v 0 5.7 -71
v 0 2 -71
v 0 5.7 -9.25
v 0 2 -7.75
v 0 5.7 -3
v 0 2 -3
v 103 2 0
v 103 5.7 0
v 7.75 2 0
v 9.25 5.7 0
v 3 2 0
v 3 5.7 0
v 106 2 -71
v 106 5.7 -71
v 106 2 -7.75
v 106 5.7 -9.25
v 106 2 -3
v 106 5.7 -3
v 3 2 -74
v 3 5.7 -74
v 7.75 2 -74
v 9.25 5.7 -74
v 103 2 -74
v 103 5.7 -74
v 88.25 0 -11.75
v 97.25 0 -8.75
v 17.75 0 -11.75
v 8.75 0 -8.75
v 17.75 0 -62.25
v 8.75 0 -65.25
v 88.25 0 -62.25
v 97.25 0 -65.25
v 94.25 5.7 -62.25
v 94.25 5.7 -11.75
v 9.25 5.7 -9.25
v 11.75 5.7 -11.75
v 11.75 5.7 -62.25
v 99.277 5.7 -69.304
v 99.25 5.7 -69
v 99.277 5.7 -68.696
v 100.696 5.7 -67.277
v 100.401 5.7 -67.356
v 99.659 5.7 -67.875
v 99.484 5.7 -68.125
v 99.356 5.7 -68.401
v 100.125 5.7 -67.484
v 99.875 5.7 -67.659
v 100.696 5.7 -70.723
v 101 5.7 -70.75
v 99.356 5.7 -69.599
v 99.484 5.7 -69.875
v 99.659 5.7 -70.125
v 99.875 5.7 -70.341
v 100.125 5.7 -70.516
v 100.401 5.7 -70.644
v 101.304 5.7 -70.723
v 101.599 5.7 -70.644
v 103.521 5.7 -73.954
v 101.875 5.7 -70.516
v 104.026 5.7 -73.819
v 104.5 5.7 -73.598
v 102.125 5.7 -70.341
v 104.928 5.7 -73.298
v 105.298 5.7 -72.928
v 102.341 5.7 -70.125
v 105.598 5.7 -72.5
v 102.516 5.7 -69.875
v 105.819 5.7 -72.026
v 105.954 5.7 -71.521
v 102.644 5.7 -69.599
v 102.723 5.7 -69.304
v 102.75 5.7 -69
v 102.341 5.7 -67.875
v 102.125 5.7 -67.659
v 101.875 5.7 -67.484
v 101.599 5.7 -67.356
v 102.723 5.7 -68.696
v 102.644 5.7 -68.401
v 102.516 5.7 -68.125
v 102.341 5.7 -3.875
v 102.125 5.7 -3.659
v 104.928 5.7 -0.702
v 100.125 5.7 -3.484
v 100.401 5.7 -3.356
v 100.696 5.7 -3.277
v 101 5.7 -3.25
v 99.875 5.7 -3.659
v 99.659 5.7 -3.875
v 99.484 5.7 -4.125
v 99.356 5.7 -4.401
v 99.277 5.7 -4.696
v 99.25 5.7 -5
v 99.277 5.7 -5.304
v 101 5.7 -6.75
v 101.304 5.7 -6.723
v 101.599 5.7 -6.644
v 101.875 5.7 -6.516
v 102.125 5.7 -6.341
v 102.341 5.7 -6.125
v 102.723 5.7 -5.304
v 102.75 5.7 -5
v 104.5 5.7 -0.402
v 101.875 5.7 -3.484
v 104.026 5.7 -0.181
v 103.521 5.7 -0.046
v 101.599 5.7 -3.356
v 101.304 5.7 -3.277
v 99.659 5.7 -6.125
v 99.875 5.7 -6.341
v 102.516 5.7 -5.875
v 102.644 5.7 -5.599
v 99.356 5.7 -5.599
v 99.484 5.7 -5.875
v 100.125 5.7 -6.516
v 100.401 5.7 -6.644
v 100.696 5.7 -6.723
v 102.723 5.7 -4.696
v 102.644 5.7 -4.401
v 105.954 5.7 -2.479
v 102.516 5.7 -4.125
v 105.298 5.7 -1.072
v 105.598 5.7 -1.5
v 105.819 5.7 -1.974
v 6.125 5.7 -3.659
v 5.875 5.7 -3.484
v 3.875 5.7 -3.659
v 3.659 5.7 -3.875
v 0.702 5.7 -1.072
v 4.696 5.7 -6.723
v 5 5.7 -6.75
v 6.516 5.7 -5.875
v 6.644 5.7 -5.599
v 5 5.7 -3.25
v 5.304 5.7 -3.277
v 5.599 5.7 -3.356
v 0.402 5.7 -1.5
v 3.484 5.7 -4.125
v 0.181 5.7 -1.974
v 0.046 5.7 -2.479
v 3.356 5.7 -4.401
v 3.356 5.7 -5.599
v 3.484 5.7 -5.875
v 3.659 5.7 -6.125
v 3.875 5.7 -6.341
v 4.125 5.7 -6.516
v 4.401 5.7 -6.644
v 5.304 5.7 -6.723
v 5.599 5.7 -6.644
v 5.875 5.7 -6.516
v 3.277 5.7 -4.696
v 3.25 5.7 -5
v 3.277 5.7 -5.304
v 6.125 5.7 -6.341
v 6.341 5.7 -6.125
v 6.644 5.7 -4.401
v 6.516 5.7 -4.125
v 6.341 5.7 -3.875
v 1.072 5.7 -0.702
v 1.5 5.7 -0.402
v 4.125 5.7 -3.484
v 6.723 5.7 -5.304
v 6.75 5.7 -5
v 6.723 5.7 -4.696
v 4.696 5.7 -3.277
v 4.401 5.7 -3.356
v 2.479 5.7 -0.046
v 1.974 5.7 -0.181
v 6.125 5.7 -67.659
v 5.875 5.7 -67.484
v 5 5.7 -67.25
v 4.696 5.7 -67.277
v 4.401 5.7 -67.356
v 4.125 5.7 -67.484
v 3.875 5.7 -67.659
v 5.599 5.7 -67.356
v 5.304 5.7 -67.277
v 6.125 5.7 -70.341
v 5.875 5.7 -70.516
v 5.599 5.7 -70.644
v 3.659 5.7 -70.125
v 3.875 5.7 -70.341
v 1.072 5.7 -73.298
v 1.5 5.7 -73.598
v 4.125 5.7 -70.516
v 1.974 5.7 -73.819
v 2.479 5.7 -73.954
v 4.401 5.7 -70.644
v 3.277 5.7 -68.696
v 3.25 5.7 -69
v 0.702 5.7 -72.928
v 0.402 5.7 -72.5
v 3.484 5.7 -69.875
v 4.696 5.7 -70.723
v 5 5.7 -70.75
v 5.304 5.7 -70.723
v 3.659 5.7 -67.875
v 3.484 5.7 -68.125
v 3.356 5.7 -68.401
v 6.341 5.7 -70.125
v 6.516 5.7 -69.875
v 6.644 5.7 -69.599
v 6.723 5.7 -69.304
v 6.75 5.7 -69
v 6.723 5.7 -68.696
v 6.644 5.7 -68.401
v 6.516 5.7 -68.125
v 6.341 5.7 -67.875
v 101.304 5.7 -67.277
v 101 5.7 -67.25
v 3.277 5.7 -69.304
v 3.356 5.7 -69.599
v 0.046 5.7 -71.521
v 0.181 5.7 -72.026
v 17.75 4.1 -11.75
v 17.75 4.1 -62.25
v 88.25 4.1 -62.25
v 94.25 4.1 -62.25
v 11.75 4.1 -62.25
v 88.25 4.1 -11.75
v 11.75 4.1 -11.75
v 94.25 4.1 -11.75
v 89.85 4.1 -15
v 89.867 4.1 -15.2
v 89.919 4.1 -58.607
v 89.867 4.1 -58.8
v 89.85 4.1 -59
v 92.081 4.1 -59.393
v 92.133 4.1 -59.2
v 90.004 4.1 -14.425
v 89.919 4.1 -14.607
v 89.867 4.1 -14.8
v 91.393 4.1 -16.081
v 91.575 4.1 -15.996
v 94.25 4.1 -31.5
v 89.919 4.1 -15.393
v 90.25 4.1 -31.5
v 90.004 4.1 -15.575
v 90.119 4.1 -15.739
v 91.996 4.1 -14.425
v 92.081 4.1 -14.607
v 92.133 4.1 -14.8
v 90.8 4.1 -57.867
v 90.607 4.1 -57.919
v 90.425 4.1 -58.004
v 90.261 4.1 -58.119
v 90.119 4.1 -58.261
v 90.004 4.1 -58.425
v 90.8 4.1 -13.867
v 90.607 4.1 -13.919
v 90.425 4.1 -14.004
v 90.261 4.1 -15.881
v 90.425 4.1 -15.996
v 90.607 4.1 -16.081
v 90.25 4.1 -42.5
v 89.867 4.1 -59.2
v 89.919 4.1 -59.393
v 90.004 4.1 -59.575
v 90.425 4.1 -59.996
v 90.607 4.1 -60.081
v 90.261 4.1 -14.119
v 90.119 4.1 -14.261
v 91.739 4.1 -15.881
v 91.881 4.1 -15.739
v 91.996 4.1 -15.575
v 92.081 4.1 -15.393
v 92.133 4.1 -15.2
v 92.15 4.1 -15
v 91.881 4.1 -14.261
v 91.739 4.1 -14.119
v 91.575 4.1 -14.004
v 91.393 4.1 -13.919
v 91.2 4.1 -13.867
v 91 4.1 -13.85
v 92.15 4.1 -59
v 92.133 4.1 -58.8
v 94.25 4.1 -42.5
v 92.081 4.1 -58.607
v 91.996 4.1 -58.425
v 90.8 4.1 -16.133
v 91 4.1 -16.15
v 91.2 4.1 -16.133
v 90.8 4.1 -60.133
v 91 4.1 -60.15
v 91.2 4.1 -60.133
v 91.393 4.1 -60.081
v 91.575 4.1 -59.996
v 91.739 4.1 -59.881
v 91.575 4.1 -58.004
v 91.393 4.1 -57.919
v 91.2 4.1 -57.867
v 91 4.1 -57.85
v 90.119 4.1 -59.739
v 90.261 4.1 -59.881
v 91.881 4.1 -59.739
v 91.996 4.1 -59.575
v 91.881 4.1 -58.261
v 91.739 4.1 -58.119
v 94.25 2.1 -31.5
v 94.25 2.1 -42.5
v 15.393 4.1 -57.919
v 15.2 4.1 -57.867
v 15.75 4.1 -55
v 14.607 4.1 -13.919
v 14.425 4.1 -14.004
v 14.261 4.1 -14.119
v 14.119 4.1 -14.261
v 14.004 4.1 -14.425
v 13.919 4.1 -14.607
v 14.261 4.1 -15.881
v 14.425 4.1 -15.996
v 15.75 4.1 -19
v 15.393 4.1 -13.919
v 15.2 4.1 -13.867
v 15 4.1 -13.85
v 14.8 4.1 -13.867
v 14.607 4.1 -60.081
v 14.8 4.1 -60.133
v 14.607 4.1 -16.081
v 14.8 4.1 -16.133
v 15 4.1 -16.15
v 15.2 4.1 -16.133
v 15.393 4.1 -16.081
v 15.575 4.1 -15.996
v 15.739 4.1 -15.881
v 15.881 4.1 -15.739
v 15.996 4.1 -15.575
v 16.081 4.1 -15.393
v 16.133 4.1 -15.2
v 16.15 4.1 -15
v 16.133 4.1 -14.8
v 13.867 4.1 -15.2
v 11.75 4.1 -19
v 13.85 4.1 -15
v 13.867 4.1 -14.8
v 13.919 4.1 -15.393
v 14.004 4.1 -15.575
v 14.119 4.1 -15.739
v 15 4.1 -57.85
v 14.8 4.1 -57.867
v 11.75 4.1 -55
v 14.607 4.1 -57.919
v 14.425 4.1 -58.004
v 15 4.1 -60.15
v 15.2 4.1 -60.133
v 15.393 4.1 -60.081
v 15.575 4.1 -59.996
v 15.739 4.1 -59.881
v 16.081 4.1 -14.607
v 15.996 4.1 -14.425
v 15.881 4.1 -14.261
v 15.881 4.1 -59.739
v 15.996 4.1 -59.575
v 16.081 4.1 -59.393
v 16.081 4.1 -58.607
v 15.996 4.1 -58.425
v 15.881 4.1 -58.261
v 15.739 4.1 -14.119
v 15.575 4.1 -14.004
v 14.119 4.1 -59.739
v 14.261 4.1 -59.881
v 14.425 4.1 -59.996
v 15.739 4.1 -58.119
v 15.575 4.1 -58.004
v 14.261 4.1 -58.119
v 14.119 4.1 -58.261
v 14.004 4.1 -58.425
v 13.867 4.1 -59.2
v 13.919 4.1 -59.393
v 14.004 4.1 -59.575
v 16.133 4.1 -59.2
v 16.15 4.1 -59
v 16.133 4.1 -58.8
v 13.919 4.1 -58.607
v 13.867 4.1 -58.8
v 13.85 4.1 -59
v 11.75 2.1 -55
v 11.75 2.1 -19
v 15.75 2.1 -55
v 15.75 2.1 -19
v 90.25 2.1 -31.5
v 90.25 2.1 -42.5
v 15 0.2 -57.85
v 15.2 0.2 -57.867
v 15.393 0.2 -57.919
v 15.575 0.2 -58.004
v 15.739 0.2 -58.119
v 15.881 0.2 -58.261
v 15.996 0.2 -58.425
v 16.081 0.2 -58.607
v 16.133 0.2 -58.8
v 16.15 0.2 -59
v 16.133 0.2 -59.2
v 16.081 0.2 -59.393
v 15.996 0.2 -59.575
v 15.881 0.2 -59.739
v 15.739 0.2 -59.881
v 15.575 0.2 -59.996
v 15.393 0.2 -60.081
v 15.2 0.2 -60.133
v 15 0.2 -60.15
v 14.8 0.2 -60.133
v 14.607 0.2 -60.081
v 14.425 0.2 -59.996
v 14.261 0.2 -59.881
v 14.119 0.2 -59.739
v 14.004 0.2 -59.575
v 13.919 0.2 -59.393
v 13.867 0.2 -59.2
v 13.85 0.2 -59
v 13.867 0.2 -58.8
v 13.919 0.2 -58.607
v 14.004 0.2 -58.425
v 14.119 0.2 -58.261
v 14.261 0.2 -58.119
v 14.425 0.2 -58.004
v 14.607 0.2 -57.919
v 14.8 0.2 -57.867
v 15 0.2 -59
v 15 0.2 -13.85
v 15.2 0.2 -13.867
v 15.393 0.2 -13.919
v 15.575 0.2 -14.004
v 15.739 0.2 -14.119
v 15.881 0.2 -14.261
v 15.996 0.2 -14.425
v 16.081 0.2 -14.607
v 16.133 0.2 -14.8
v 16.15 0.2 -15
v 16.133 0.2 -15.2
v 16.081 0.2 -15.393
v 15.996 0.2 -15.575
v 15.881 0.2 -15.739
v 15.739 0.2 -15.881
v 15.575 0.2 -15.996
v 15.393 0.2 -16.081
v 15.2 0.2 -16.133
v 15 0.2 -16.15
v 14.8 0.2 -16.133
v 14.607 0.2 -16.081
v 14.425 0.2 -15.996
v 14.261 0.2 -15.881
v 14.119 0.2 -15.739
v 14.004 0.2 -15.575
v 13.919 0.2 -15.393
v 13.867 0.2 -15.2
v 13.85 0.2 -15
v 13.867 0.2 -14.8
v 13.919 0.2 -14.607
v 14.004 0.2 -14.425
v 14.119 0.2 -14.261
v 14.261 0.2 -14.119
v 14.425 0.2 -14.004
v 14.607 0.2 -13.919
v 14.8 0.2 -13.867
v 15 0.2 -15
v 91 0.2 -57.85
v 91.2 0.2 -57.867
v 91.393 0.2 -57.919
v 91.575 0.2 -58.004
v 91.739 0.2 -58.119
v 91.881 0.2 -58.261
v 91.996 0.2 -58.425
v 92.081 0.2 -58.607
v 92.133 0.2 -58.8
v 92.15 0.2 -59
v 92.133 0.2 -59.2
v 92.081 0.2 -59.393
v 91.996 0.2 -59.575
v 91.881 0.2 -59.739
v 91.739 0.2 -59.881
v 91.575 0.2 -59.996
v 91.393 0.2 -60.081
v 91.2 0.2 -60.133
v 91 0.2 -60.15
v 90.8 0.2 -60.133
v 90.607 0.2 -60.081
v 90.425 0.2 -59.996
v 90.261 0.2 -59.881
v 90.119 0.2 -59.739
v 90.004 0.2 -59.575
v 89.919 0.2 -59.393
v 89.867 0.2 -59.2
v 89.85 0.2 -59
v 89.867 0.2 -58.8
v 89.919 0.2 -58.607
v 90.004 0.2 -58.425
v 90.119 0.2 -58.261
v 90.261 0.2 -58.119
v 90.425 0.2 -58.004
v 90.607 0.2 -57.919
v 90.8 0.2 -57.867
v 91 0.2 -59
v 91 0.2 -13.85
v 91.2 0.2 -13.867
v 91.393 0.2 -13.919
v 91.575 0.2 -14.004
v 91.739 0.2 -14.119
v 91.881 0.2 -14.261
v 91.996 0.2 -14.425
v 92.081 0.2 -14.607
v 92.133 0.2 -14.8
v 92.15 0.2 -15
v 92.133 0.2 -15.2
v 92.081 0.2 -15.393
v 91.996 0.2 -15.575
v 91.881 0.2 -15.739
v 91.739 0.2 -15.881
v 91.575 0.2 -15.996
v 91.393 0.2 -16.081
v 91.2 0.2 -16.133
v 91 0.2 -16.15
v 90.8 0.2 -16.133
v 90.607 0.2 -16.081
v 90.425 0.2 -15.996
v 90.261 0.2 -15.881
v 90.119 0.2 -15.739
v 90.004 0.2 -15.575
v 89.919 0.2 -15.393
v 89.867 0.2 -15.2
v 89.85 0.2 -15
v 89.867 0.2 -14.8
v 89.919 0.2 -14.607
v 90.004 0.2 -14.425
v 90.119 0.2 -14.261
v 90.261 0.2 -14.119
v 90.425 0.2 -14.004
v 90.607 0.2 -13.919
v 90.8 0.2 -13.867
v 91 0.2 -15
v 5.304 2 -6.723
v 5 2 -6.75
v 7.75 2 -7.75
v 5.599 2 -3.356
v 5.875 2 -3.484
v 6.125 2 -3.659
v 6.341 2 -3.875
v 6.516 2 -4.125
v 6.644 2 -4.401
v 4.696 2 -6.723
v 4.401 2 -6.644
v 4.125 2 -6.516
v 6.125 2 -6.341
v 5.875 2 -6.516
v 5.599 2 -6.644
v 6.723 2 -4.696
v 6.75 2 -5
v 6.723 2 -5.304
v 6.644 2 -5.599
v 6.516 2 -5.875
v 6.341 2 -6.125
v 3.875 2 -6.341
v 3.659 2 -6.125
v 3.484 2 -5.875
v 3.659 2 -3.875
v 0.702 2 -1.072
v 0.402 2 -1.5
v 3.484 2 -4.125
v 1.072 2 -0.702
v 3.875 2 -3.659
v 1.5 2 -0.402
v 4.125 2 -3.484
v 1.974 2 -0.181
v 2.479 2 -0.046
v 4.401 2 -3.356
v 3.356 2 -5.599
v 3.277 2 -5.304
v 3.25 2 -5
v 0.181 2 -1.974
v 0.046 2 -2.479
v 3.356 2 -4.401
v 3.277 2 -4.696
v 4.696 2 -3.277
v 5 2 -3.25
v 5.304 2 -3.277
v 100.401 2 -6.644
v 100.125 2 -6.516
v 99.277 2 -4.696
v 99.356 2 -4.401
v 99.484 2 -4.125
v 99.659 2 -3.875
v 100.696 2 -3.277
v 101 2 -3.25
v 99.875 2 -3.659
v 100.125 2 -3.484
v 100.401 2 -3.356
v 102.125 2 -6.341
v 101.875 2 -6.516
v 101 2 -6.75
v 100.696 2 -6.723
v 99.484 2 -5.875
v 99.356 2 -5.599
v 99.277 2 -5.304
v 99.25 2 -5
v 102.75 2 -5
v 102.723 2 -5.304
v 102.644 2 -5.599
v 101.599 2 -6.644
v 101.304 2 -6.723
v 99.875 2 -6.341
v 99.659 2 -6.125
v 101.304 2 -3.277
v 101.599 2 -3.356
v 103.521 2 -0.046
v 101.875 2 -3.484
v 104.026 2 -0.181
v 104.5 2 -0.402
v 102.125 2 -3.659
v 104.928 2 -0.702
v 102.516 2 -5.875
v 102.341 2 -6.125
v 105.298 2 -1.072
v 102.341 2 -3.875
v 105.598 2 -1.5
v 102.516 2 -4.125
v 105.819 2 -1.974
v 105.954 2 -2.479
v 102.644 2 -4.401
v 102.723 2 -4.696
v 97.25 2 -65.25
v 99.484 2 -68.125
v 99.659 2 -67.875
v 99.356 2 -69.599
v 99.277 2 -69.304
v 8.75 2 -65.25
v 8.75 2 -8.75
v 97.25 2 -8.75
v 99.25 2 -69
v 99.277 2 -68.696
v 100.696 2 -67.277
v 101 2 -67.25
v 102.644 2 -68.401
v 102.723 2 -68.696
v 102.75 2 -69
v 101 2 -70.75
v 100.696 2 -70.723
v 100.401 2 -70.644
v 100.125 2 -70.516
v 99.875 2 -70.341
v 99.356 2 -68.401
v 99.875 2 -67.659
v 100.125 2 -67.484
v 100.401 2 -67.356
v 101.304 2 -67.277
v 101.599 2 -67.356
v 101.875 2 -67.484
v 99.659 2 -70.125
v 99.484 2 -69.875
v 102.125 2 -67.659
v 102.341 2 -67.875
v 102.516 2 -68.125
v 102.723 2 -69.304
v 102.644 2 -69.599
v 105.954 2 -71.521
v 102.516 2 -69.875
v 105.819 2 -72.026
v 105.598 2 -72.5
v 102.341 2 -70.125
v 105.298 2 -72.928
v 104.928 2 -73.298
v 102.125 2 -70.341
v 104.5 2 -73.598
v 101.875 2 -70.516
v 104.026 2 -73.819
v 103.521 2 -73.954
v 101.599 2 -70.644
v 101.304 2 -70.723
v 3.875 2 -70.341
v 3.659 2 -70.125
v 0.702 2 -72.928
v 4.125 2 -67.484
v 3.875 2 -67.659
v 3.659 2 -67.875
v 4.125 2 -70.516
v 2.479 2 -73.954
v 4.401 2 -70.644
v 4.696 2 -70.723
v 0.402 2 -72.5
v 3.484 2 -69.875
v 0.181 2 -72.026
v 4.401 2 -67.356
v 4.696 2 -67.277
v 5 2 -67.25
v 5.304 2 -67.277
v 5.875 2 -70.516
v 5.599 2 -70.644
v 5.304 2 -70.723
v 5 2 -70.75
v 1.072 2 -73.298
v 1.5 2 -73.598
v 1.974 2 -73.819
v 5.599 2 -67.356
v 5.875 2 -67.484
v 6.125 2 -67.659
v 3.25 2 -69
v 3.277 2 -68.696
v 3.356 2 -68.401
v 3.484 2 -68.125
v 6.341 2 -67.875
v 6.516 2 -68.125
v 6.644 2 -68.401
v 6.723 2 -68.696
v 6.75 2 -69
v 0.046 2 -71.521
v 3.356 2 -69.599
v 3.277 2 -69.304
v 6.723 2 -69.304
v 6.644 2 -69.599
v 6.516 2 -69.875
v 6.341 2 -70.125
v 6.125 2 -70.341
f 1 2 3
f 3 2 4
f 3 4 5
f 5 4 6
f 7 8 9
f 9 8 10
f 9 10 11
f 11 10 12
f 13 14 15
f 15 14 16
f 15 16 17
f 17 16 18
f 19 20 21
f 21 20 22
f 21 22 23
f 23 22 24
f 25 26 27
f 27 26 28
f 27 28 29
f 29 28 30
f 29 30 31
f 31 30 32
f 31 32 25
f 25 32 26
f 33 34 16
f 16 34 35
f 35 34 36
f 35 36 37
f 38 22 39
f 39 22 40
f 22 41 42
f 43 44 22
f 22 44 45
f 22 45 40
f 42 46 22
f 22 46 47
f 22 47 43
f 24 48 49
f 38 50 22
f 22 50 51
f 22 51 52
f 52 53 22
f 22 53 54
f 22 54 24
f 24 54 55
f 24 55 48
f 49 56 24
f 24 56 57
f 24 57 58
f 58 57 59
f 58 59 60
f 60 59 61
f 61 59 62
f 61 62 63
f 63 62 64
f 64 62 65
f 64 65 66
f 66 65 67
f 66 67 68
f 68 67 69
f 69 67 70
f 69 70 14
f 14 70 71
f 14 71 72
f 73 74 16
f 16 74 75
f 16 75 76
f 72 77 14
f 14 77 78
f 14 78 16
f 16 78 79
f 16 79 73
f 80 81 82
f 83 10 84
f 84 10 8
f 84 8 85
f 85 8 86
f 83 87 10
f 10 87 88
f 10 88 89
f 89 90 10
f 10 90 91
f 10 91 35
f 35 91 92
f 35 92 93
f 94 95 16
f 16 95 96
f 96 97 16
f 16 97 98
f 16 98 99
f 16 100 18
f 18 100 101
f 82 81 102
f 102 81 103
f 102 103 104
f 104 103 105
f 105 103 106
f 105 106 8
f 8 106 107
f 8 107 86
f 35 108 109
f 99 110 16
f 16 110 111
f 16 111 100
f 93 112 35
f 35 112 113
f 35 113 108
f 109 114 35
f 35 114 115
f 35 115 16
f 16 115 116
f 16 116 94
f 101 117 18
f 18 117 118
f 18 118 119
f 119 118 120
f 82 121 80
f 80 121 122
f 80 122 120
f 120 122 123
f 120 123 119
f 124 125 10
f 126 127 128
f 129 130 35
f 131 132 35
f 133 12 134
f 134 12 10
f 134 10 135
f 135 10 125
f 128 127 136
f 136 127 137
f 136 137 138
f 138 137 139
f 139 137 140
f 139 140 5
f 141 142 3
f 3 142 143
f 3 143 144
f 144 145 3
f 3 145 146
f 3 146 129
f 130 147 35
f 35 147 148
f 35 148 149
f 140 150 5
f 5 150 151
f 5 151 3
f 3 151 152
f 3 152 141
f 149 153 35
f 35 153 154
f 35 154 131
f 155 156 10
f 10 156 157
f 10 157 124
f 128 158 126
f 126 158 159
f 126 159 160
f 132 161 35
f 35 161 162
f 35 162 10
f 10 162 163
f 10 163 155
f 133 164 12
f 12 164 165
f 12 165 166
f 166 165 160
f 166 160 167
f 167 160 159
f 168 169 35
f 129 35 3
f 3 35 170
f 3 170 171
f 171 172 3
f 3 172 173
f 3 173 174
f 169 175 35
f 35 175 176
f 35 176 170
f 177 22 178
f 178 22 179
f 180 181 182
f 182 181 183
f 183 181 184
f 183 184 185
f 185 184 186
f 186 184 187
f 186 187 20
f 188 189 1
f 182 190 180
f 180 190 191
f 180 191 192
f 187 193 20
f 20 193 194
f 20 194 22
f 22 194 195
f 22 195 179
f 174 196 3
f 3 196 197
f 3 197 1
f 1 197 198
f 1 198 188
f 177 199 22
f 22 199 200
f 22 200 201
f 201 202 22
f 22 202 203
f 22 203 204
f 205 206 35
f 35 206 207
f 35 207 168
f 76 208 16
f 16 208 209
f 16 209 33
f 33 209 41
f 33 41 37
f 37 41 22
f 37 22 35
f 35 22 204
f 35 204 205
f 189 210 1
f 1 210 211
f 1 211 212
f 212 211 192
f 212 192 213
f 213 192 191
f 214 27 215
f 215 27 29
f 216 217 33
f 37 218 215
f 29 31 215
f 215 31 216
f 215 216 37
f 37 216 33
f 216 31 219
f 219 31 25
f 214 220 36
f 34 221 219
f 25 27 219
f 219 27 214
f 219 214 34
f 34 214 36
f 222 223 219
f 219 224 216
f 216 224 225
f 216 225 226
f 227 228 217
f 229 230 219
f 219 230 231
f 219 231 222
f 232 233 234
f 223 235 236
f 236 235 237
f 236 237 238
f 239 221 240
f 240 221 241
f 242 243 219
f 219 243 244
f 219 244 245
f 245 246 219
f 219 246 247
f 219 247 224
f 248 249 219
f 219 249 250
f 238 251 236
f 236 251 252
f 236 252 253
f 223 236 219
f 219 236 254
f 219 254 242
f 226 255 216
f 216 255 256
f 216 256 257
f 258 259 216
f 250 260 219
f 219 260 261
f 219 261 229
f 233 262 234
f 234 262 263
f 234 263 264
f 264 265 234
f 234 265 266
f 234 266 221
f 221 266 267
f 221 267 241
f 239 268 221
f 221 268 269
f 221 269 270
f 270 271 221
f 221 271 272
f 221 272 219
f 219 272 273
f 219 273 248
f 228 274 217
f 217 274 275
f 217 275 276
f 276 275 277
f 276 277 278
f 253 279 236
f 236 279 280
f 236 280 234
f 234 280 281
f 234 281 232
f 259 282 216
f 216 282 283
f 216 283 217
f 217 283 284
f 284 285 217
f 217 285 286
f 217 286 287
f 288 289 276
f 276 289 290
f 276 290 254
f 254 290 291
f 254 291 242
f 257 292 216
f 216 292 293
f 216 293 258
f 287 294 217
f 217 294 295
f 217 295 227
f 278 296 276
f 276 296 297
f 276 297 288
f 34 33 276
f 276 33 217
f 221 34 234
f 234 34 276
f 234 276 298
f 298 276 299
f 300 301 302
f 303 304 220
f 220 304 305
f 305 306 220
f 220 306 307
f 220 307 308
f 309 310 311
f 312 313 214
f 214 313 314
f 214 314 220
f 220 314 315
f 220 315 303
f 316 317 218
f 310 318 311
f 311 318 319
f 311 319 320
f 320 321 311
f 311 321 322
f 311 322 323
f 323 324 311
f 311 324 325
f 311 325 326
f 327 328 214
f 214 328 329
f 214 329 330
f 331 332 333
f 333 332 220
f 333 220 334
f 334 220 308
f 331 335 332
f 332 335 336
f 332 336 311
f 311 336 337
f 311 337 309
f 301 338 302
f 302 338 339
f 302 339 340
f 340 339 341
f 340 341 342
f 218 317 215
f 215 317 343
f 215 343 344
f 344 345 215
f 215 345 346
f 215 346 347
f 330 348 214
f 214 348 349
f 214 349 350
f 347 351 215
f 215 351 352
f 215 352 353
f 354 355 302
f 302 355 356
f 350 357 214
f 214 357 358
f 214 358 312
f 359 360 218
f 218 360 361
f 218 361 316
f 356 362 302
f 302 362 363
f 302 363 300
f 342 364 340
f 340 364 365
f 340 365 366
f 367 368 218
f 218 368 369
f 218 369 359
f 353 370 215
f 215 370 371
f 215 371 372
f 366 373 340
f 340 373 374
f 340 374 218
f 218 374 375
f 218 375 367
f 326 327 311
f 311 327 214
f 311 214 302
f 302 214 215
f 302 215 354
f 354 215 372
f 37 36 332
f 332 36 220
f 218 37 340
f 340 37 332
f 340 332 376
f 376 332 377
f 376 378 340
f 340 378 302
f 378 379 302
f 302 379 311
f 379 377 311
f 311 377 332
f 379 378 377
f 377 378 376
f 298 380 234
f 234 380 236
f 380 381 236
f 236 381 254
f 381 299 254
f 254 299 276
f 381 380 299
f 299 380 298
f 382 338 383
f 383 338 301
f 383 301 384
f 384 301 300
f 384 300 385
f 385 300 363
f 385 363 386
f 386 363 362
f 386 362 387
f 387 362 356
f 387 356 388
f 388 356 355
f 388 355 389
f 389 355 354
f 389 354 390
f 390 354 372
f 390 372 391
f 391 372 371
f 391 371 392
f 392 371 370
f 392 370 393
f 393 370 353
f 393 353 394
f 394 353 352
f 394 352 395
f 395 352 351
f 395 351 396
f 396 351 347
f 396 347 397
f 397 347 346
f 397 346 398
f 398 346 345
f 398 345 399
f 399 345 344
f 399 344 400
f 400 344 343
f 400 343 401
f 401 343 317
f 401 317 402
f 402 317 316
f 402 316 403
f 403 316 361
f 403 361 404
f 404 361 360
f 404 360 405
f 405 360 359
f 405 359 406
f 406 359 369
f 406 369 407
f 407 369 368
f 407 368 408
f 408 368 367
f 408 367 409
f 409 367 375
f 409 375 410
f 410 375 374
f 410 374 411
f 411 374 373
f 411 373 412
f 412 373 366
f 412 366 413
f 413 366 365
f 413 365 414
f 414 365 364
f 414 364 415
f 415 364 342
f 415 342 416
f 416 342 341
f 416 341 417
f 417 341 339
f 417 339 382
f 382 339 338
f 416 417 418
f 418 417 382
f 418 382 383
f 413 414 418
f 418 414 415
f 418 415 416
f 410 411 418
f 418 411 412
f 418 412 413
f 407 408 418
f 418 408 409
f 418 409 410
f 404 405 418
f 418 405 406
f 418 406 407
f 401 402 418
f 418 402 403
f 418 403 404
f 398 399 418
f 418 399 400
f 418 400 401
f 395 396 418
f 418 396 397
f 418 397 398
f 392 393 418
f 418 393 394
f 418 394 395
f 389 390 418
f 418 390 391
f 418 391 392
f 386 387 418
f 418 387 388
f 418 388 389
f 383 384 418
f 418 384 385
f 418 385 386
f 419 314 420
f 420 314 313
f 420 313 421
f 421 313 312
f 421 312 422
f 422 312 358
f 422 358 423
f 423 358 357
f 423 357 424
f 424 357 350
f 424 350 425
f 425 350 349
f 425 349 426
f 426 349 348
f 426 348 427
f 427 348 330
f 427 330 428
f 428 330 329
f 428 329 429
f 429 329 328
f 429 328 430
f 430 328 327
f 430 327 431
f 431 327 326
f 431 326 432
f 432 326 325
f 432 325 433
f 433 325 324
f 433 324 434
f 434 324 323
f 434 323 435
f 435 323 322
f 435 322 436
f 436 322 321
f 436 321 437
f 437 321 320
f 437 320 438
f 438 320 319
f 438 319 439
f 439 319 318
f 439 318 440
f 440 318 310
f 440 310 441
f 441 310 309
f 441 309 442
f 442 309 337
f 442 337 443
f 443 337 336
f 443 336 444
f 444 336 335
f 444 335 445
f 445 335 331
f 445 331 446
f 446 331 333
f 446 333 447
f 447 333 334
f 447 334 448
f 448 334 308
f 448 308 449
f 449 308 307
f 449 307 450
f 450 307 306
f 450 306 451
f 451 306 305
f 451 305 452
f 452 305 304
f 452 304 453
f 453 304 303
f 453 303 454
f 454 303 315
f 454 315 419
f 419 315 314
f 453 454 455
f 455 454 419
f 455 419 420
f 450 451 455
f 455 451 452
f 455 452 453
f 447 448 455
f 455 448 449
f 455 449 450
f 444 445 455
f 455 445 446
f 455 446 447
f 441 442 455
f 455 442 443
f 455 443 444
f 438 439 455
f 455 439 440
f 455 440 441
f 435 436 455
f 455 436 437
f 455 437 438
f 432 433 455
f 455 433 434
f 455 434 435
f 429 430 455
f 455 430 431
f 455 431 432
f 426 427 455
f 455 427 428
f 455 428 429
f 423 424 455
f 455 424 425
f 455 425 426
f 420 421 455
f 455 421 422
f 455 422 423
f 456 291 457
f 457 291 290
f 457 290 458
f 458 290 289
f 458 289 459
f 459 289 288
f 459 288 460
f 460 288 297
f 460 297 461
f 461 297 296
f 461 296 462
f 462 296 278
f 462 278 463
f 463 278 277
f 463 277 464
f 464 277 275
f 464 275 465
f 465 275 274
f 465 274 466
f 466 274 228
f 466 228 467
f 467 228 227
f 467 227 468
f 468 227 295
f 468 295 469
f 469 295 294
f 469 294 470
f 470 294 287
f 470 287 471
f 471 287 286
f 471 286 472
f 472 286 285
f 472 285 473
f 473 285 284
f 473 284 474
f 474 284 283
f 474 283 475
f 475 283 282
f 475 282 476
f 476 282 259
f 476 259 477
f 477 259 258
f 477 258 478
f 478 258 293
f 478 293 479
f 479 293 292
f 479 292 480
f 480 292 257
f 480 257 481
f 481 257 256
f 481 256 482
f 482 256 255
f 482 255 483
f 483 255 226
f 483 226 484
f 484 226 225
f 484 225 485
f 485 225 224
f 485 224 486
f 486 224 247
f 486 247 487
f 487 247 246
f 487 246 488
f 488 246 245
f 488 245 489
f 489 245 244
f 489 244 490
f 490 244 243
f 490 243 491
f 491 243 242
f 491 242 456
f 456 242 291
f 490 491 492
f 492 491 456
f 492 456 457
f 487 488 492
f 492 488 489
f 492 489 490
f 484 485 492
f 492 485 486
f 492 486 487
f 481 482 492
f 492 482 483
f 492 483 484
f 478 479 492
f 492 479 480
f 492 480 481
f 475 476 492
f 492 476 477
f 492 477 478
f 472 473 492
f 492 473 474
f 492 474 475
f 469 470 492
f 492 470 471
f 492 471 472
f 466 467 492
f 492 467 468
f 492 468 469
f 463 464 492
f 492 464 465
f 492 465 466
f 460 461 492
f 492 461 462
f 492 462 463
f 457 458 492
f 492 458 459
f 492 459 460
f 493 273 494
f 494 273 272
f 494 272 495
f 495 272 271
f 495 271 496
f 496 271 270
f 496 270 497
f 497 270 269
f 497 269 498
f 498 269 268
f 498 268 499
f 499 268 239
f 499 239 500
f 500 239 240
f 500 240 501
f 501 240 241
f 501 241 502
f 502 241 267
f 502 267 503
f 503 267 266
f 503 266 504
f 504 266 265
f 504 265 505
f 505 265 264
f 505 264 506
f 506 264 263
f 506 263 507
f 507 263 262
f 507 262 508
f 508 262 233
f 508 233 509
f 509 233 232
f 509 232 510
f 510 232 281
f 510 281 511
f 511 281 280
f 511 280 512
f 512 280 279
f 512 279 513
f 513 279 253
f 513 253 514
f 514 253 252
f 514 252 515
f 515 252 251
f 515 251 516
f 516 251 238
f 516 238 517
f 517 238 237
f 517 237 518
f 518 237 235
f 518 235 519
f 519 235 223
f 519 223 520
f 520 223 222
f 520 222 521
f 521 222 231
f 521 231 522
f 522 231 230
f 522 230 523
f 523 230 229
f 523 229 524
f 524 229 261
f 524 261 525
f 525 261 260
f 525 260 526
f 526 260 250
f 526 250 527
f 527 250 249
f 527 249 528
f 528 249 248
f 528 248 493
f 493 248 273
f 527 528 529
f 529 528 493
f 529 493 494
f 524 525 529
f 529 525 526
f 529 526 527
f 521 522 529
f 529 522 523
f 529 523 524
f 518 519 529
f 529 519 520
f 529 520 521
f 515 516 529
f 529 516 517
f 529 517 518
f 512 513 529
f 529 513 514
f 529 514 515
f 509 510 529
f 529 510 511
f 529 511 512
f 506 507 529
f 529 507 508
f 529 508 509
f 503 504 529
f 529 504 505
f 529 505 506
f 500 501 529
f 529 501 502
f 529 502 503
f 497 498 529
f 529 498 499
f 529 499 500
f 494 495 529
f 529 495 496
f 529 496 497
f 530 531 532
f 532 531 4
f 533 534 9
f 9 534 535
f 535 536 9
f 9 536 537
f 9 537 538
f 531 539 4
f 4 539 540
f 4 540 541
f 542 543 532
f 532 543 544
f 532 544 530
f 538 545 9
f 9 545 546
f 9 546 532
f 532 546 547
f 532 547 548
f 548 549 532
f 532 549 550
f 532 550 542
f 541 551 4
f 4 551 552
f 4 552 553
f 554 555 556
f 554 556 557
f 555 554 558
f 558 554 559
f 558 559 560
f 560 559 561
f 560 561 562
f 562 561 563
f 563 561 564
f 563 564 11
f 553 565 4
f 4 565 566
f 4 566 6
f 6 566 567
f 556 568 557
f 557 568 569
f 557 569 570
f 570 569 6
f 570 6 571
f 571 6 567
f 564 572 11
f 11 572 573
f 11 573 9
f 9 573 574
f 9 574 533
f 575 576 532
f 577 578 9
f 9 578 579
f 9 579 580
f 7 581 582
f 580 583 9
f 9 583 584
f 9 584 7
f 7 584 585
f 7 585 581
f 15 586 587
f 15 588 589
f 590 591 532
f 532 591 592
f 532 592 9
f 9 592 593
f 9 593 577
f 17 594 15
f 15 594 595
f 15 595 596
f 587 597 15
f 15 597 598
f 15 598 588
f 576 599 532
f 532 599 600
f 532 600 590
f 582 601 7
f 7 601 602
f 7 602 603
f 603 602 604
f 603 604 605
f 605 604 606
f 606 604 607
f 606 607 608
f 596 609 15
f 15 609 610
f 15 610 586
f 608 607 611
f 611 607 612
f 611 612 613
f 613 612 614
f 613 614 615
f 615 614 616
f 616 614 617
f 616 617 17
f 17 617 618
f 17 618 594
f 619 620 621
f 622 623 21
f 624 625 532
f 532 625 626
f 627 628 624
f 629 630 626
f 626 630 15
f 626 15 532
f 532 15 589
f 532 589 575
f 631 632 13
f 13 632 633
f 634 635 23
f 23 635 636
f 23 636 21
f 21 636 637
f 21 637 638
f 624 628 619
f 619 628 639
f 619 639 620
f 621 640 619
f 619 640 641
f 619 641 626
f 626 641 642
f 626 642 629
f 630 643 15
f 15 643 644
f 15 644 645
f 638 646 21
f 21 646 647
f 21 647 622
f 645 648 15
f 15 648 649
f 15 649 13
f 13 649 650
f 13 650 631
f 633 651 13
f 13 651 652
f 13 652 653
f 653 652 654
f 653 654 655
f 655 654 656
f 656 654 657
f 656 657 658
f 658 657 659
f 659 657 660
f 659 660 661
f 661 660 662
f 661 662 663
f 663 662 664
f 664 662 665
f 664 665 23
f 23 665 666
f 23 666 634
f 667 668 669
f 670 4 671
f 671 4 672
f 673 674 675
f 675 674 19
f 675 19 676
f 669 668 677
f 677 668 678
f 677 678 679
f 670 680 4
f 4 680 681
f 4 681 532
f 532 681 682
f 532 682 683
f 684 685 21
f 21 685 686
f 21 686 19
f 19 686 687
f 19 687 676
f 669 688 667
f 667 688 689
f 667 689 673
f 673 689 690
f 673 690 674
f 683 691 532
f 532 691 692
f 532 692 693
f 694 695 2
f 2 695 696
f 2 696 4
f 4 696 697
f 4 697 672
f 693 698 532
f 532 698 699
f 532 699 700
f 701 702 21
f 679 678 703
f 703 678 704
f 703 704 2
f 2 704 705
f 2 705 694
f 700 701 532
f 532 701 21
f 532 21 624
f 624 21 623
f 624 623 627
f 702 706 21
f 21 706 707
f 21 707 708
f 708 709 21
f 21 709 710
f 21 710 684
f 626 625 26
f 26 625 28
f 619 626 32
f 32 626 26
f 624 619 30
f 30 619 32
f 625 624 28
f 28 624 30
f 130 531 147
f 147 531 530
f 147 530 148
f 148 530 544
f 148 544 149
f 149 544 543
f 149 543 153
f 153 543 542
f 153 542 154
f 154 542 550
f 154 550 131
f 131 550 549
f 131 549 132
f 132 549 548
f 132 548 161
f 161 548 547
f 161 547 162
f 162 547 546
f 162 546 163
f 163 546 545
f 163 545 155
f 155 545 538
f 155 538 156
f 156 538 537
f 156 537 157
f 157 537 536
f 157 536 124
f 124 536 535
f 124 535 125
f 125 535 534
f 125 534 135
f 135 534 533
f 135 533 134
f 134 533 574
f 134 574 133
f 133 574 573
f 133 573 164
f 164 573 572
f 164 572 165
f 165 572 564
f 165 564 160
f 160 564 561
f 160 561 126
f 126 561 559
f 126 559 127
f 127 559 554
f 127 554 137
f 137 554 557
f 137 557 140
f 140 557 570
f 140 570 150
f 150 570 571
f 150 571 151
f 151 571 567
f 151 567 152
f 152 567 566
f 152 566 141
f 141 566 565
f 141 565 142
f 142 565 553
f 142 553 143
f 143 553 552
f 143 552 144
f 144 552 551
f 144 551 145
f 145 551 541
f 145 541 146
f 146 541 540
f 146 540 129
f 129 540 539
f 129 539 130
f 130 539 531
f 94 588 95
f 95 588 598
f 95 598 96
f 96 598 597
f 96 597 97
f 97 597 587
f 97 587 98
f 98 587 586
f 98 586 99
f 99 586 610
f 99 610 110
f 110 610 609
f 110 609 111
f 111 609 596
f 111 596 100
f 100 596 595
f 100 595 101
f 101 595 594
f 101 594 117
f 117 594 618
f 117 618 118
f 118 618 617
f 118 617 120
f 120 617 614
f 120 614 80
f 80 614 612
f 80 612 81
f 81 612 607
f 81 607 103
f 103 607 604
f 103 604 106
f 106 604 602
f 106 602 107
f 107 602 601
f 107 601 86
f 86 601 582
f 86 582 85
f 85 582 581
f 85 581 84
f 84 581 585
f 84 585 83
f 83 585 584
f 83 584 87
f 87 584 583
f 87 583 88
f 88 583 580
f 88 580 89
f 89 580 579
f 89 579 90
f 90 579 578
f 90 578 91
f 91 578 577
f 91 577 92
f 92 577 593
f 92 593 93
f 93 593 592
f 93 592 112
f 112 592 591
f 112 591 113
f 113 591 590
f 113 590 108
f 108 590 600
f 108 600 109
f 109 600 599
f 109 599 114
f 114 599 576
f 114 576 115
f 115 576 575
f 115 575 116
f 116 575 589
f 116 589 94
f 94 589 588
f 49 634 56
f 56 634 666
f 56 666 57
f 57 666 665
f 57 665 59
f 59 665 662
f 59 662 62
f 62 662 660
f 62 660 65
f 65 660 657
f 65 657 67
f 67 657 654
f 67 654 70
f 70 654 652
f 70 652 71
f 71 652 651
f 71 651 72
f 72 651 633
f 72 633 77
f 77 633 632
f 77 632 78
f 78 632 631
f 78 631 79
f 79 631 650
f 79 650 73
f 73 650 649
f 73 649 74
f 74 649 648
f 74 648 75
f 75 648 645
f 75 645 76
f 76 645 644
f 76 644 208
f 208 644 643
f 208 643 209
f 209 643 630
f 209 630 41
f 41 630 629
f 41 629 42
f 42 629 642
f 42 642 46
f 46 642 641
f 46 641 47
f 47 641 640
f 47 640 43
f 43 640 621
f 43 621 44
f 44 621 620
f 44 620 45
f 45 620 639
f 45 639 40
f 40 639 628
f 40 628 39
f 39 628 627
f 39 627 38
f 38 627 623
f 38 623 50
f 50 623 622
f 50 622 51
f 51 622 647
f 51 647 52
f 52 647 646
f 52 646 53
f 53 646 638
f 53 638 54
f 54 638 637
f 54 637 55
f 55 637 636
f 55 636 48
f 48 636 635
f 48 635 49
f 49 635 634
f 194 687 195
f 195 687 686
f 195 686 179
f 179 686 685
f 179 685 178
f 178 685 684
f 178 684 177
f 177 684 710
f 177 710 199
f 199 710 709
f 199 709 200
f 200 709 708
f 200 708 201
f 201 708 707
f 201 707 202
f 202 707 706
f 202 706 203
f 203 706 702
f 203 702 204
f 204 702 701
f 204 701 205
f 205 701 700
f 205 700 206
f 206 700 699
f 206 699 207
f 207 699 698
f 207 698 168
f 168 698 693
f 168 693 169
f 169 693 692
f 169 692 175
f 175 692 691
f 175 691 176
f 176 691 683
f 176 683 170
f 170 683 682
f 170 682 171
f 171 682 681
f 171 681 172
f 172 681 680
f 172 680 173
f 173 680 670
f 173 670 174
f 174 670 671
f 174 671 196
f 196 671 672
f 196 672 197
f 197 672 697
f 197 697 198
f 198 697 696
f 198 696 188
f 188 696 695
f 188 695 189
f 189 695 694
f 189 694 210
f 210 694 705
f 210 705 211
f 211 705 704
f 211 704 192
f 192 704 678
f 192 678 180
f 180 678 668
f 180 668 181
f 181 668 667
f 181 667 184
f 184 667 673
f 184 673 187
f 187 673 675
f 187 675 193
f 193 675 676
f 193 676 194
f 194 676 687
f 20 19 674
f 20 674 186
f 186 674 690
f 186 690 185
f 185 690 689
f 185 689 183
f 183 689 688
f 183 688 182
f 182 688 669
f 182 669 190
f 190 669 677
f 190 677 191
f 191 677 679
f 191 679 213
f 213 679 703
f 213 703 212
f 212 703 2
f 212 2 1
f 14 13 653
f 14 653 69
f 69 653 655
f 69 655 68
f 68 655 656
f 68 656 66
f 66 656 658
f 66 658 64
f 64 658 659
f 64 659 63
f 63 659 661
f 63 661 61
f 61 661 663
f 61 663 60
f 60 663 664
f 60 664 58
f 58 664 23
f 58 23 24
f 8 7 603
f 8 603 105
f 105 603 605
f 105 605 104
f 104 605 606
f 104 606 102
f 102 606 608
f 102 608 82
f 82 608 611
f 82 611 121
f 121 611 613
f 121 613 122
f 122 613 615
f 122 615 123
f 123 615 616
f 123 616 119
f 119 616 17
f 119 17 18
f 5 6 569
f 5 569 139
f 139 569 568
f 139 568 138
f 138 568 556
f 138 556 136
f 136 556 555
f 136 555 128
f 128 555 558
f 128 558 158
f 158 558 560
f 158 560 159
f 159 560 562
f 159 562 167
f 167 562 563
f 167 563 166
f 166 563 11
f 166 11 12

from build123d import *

# Parameters (mm, degrees)
SKETCH_1_W          = 106
SKETCH_1_H          = 74
EXTRUDE_1_DEPTH     = 5.7
SKETCH_2_W          = 70.5
SKETCH_2_H          = 50.5
CUT_EXTRUDE_1_DEPTH = 130.400502317
SKETCH_3_W          = 82.5
SKETCH_3_H          = 50.5
CUT_EXTRUDE_2_DEPTH = 1.6
SKETCH_4_W          = 4
SKETCH_4_H          = 11
SKETCH_4_H_2        = 36
CUT_EXTRUDE_3_DEPTH = 2
SKETCH_5_R          = 1.15
CUT_EXTRUDE_4_DEPTH = 3.9
CUT_EXTRUDE_START   = -5.7
SKETCH_6_W          = 131.135040239
SKETCH_6_H          = 88.560038322
SKETCH_6_W_2        = 88.5
SKETCH_6_H_2        = 56.5
CUT_EXTRUDE_5_DEPTH = 2
SKETCH_7_R          = 1.75
CUT_EXTRUDE_6_DEPTH = 130.32783923
FILLET_1_R          = 3


with BuildPart() as part:
    # Эскиз1 → Бобышка-Вытянуть1 (new body)
    with BuildSketch(Plane(origin=(0, 0, 0), x_dir=(1, 0, 0), z_dir=(0, 1, 0))):
        with Locations((53, 37)):
            Rectangle(SKETCH_1_W, SKETCH_1_H)
    extrude(amount=EXTRUDE_1_DEPTH)

    # Эскиз2 → Вырез-Вытянуть1 (cut, through all)
    with BuildSketch(Plane(origin=(0, 5.7, 0), x_dir=(1, 0, 0), z_dir=(0, 1, 0))):
        with Locations((53, 37)):
            Rectangle(SKETCH_2_W, SKETCH_2_H)
    extrude(amount=-CUT_EXTRUDE_1_DEPTH, mode=Mode.SUBTRACT)

    # Эскиз3 → Вырез-Вытянуть2 (cut)
    with BuildSketch(Plane(origin=(0, 5.7, 0), x_dir=(1, 0, 0), z_dir=(0, 1, 0))):
        with Locations((53, 37)):
            Rectangle(SKETCH_3_W, SKETCH_3_H)
    extrude(amount=-CUT_EXTRUDE_2_DEPTH, mode=Mode.SUBTRACT)

    # Эскиз4 → Вырез-Вытянуть3 (cut)
    with BuildSketch(Plane(origin=(0, 4.1, 0), x_dir=(1, 0, 0), z_dir=(0, 1, 0))):
        with Locations((92.25, 37)):
            Rectangle(SKETCH_4_W, SKETCH_4_H)
        with Locations((13.75, 37)):
            Rectangle(SKETCH_4_W, SKETCH_4_H_2)
    extrude(amount=-CUT_EXTRUDE_3_DEPTH, mode=Mode.SUBTRACT)

    # Эскиз5 → Вырез-Вытянуть4 (cut)
    with BuildSketch(Plane(origin=(0, 4.1, 0), x_dir=(1, 0, 0), z_dir=(0, 1, 0))):
        with Locations(Location((15, 59, 0), (0, 0, 270))):
            Circle(SKETCH_5_R)
        with Locations(Location((91, 59, 0), (0, 0, 270))):
            Circle(SKETCH_5_R)
        with Locations(Location((91, 15, 0), (0, 0, 270))):
            Circle(SKETCH_5_R)
        with Locations(Location((15, 15, 0), (0, 0, 270))):
            Circle(SKETCH_5_R)
    extrude(amount=-CUT_EXTRUDE_4_DEPTH, mode=Mode.SUBTRACT)

    # Эскиз6 → Вырез-Вытянуть5 (cut)
    with BuildSketch(Plane(origin=(0, 5.7, 0), x_dir=(1, 0, 0), z_dir=(0, 1, 0)).offset(CUT_EXTRUDE_START)):
        with Locations((54.065232984, 39.640866481)):
            Rectangle(SKETCH_6_W, SKETCH_6_H)
        with Locations((53, 37)):
            Rectangle(SKETCH_6_W_2, SKETCH_6_H_2, mode=Mode.SUBTRACT)
    extrude(amount=CUT_EXTRUDE_5_DEPTH, mode=Mode.SUBTRACT)

    # Эскиз7 → Вырез-Вытянуть6 (cut, through all)
    with BuildSketch(Plane.XZ.offset(-2)):
        with Locations(Location((5, -5, 0), (0, 0, 270))):
            Circle(SKETCH_7_R)
        with Locations(Location((101, -5, 0), (0, 0, 270))):
            Circle(SKETCH_7_R)
        with Locations(Location((101, -69, 0), (0, 0, 270))):
            Circle(SKETCH_7_R)
        with Locations(Location((5, -69, 0), (0, 0, 270))):
            Circle(SKETCH_7_R)
    extrude(amount=-CUT_EXTRUDE_6_DEPTH, mode=Mode.SUBTRACT)

    # Скругление1
    fillet_1_edges = [part.edges().sort_by_distance(p)[0] for p in [
        (0, 3.85, -74),
        (106, 3.85, -74),
        (106, 3.85, 0),
        (0, 3.85, 0),
    ]]
    fillet(fillet_1_edges, radius=FILLET_1_R)


solid = part.part
